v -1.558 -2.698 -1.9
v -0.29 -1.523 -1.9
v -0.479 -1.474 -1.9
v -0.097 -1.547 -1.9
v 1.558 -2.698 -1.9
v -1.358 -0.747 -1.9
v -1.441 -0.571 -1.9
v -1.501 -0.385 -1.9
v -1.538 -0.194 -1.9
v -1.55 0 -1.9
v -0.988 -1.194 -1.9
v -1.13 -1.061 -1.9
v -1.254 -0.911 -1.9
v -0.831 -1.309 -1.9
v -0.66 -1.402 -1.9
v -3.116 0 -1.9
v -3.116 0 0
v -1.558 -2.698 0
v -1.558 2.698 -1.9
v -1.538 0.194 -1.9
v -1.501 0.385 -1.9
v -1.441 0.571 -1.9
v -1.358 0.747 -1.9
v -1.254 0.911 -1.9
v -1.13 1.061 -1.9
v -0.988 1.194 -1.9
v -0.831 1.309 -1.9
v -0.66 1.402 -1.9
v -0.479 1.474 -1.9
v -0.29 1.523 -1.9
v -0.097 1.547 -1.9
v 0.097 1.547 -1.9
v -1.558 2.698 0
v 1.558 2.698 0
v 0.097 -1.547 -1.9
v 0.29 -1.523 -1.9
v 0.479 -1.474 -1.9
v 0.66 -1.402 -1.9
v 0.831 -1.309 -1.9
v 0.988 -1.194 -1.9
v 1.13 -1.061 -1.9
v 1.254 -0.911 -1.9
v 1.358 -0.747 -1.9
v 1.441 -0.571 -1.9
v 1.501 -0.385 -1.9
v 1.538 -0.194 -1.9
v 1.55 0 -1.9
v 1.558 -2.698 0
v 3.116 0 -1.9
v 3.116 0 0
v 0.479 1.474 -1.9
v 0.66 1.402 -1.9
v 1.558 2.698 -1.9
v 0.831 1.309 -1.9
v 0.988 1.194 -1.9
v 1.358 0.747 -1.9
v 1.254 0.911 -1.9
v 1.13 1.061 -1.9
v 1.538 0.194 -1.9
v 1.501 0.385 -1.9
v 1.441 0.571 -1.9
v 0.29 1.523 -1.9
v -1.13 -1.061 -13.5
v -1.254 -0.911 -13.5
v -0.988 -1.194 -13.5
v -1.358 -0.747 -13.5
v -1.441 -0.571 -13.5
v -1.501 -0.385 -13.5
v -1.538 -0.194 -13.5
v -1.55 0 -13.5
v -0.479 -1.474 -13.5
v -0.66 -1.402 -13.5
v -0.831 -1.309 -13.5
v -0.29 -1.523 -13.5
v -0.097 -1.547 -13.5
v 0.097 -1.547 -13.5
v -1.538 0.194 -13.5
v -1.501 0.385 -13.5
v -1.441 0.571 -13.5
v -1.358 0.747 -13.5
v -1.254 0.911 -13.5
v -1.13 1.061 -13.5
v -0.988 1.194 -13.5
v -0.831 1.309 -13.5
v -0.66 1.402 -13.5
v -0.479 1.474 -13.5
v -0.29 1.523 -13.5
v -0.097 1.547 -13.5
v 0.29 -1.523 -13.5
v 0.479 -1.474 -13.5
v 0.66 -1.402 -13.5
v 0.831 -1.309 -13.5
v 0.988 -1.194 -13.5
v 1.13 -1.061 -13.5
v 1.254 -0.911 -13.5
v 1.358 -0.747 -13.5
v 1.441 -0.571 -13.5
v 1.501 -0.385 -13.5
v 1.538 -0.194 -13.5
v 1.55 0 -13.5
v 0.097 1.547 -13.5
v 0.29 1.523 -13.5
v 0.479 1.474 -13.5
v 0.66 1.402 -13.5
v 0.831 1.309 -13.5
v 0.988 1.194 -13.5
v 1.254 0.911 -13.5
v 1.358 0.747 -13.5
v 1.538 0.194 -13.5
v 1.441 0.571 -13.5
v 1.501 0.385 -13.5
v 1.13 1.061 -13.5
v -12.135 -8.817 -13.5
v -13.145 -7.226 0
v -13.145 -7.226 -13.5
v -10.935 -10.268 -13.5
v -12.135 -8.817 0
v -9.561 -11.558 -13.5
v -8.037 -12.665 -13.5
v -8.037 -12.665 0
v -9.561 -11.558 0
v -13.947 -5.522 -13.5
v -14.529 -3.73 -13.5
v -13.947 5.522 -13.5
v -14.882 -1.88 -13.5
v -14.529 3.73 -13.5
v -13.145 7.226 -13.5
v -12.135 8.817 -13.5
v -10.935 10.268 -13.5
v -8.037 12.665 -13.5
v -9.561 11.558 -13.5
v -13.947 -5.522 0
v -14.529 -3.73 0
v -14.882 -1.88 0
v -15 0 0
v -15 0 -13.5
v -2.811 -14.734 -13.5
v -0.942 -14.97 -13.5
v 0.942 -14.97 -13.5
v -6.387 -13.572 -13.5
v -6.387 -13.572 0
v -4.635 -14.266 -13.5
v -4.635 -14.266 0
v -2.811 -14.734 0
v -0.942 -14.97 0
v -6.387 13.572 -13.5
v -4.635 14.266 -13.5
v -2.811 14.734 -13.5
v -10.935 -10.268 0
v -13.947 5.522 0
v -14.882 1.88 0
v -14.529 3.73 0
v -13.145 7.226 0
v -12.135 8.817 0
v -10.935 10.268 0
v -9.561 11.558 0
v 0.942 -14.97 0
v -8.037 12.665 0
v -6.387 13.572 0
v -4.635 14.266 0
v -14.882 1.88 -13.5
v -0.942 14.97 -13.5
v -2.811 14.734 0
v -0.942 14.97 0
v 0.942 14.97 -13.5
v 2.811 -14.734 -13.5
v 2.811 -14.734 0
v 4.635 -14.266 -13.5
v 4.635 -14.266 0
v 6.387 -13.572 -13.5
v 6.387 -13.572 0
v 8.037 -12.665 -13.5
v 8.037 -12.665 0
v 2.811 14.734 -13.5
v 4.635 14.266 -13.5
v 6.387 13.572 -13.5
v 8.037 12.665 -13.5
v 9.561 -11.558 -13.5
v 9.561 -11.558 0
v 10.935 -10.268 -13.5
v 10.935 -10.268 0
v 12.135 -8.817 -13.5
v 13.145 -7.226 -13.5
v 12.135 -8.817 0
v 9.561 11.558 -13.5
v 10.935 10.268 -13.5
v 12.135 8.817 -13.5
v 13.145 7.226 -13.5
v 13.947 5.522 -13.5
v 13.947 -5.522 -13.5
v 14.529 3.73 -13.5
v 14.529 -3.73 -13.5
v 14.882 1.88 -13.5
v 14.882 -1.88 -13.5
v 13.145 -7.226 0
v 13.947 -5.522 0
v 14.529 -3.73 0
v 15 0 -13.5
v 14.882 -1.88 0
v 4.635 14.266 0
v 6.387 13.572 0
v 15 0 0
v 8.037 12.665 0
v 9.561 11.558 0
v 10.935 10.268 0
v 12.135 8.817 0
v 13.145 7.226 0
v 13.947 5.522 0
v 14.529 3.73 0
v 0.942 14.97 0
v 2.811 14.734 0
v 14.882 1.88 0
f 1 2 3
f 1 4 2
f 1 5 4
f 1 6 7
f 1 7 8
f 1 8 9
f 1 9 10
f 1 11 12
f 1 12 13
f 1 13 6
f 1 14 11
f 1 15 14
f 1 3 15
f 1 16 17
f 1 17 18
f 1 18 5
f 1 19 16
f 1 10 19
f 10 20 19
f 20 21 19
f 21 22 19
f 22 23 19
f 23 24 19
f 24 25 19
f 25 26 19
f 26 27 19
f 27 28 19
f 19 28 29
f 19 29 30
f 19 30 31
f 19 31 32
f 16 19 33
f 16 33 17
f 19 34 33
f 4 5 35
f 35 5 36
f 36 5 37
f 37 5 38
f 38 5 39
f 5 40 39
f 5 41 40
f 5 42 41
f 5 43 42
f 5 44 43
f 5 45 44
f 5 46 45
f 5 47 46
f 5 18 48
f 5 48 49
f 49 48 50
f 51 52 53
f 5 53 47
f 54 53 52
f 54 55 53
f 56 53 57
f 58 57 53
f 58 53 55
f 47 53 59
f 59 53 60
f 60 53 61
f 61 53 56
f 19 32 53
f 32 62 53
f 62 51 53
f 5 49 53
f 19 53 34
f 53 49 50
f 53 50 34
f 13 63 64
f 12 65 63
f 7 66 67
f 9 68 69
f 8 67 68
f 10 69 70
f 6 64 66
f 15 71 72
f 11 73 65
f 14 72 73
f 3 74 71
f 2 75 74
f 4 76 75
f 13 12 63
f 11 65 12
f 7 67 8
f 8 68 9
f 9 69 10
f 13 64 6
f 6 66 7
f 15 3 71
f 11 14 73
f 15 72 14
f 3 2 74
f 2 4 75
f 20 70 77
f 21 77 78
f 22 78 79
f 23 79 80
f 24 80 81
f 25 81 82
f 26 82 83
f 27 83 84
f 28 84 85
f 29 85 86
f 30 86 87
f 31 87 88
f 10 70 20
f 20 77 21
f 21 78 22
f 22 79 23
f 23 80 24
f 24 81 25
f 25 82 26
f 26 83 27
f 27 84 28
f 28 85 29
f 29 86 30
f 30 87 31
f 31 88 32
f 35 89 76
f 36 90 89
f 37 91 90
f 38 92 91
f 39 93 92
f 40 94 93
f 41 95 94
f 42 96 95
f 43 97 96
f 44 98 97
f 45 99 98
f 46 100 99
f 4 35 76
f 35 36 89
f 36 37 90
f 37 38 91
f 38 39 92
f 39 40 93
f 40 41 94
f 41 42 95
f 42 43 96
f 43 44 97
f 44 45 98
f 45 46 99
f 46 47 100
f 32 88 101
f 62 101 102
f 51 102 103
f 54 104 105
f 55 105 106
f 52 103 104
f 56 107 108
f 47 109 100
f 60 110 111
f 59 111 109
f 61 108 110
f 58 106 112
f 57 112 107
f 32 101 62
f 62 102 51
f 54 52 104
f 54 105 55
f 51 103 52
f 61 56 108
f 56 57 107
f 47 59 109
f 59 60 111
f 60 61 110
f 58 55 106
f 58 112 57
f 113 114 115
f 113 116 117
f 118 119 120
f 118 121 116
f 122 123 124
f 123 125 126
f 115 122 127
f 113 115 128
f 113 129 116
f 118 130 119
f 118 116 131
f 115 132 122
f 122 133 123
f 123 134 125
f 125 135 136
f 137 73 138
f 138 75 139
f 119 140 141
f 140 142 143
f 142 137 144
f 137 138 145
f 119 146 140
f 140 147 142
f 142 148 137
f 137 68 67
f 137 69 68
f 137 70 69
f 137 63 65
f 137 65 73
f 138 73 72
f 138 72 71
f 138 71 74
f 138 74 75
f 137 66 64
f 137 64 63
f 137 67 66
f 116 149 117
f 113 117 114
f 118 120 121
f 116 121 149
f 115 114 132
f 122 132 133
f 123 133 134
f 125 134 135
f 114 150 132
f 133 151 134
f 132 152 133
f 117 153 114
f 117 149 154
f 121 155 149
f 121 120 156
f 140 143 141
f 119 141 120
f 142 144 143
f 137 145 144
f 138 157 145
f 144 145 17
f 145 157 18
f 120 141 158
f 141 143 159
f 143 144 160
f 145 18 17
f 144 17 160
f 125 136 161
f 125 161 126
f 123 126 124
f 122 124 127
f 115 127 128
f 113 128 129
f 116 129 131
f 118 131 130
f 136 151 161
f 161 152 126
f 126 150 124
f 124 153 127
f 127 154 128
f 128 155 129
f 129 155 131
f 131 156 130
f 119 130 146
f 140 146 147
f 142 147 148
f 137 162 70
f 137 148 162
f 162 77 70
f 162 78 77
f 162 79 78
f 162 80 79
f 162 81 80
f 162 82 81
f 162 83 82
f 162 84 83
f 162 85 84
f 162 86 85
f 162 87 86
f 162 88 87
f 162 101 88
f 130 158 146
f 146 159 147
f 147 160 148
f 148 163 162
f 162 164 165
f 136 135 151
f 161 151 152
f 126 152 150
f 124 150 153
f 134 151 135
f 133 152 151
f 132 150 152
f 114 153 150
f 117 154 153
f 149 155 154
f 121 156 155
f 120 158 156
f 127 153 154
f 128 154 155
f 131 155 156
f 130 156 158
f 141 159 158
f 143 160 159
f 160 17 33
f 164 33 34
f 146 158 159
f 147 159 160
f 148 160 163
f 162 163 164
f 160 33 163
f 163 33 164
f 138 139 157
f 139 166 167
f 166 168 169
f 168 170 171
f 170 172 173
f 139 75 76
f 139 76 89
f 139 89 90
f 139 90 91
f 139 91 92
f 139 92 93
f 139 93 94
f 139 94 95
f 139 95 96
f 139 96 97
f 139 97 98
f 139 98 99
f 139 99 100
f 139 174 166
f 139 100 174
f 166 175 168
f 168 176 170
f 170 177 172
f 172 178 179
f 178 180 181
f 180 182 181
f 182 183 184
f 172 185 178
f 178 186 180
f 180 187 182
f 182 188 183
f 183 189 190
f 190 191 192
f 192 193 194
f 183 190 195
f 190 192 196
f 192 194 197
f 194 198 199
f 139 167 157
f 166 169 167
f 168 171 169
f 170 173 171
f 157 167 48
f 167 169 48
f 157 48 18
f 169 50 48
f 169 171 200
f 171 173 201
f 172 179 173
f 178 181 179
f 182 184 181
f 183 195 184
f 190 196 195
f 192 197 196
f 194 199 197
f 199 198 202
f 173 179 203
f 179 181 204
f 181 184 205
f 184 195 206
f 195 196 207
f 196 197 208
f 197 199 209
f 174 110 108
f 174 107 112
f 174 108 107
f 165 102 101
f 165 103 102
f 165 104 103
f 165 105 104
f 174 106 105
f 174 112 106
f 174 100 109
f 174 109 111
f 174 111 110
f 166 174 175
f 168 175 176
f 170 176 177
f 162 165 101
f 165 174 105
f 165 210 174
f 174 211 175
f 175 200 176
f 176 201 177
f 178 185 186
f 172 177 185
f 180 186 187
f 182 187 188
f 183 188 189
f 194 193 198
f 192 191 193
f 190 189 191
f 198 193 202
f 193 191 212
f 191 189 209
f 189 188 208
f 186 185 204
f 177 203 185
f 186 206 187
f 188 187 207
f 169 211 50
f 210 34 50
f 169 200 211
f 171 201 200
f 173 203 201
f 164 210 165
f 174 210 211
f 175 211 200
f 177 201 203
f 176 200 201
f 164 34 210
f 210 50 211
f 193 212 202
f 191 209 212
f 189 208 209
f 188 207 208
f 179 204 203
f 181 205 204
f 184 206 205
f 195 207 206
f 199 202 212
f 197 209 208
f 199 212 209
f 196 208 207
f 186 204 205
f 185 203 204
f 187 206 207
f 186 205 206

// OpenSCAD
$fn = 50;


difference() {
	union() {
		translate(v = [0, 0, -13.5000000000]) {
			cylinder(h = 13.5000000000, r = 15.0000000000);
		}
	}
	union() {
		translate(v = [0, 0, 0]) {
			rotate(a = [0, 0, 0]) {
				difference() {
					union() {
						translate(v = [0, 0, -1.9000000000]) {
							linear_extrude(height = 1.9000000000) {
								polygon(points = [[3.1158000000, 0.0000000000], [1.5579000000, 2.6983619531], [-1.5579000000, 2.6983619531], [-3.1158000000, 0.0000000000], [-1.5579000000, -2.6983619531], [1.5579000000, -2.6983619531]]);
							}
						}
					}
					union();
				}
			}
		}
		#translate(v = [0, 0, -100.0000000000]) {
			cylinder(h = 200, r = 1.5500000000);
		}
	}
}
